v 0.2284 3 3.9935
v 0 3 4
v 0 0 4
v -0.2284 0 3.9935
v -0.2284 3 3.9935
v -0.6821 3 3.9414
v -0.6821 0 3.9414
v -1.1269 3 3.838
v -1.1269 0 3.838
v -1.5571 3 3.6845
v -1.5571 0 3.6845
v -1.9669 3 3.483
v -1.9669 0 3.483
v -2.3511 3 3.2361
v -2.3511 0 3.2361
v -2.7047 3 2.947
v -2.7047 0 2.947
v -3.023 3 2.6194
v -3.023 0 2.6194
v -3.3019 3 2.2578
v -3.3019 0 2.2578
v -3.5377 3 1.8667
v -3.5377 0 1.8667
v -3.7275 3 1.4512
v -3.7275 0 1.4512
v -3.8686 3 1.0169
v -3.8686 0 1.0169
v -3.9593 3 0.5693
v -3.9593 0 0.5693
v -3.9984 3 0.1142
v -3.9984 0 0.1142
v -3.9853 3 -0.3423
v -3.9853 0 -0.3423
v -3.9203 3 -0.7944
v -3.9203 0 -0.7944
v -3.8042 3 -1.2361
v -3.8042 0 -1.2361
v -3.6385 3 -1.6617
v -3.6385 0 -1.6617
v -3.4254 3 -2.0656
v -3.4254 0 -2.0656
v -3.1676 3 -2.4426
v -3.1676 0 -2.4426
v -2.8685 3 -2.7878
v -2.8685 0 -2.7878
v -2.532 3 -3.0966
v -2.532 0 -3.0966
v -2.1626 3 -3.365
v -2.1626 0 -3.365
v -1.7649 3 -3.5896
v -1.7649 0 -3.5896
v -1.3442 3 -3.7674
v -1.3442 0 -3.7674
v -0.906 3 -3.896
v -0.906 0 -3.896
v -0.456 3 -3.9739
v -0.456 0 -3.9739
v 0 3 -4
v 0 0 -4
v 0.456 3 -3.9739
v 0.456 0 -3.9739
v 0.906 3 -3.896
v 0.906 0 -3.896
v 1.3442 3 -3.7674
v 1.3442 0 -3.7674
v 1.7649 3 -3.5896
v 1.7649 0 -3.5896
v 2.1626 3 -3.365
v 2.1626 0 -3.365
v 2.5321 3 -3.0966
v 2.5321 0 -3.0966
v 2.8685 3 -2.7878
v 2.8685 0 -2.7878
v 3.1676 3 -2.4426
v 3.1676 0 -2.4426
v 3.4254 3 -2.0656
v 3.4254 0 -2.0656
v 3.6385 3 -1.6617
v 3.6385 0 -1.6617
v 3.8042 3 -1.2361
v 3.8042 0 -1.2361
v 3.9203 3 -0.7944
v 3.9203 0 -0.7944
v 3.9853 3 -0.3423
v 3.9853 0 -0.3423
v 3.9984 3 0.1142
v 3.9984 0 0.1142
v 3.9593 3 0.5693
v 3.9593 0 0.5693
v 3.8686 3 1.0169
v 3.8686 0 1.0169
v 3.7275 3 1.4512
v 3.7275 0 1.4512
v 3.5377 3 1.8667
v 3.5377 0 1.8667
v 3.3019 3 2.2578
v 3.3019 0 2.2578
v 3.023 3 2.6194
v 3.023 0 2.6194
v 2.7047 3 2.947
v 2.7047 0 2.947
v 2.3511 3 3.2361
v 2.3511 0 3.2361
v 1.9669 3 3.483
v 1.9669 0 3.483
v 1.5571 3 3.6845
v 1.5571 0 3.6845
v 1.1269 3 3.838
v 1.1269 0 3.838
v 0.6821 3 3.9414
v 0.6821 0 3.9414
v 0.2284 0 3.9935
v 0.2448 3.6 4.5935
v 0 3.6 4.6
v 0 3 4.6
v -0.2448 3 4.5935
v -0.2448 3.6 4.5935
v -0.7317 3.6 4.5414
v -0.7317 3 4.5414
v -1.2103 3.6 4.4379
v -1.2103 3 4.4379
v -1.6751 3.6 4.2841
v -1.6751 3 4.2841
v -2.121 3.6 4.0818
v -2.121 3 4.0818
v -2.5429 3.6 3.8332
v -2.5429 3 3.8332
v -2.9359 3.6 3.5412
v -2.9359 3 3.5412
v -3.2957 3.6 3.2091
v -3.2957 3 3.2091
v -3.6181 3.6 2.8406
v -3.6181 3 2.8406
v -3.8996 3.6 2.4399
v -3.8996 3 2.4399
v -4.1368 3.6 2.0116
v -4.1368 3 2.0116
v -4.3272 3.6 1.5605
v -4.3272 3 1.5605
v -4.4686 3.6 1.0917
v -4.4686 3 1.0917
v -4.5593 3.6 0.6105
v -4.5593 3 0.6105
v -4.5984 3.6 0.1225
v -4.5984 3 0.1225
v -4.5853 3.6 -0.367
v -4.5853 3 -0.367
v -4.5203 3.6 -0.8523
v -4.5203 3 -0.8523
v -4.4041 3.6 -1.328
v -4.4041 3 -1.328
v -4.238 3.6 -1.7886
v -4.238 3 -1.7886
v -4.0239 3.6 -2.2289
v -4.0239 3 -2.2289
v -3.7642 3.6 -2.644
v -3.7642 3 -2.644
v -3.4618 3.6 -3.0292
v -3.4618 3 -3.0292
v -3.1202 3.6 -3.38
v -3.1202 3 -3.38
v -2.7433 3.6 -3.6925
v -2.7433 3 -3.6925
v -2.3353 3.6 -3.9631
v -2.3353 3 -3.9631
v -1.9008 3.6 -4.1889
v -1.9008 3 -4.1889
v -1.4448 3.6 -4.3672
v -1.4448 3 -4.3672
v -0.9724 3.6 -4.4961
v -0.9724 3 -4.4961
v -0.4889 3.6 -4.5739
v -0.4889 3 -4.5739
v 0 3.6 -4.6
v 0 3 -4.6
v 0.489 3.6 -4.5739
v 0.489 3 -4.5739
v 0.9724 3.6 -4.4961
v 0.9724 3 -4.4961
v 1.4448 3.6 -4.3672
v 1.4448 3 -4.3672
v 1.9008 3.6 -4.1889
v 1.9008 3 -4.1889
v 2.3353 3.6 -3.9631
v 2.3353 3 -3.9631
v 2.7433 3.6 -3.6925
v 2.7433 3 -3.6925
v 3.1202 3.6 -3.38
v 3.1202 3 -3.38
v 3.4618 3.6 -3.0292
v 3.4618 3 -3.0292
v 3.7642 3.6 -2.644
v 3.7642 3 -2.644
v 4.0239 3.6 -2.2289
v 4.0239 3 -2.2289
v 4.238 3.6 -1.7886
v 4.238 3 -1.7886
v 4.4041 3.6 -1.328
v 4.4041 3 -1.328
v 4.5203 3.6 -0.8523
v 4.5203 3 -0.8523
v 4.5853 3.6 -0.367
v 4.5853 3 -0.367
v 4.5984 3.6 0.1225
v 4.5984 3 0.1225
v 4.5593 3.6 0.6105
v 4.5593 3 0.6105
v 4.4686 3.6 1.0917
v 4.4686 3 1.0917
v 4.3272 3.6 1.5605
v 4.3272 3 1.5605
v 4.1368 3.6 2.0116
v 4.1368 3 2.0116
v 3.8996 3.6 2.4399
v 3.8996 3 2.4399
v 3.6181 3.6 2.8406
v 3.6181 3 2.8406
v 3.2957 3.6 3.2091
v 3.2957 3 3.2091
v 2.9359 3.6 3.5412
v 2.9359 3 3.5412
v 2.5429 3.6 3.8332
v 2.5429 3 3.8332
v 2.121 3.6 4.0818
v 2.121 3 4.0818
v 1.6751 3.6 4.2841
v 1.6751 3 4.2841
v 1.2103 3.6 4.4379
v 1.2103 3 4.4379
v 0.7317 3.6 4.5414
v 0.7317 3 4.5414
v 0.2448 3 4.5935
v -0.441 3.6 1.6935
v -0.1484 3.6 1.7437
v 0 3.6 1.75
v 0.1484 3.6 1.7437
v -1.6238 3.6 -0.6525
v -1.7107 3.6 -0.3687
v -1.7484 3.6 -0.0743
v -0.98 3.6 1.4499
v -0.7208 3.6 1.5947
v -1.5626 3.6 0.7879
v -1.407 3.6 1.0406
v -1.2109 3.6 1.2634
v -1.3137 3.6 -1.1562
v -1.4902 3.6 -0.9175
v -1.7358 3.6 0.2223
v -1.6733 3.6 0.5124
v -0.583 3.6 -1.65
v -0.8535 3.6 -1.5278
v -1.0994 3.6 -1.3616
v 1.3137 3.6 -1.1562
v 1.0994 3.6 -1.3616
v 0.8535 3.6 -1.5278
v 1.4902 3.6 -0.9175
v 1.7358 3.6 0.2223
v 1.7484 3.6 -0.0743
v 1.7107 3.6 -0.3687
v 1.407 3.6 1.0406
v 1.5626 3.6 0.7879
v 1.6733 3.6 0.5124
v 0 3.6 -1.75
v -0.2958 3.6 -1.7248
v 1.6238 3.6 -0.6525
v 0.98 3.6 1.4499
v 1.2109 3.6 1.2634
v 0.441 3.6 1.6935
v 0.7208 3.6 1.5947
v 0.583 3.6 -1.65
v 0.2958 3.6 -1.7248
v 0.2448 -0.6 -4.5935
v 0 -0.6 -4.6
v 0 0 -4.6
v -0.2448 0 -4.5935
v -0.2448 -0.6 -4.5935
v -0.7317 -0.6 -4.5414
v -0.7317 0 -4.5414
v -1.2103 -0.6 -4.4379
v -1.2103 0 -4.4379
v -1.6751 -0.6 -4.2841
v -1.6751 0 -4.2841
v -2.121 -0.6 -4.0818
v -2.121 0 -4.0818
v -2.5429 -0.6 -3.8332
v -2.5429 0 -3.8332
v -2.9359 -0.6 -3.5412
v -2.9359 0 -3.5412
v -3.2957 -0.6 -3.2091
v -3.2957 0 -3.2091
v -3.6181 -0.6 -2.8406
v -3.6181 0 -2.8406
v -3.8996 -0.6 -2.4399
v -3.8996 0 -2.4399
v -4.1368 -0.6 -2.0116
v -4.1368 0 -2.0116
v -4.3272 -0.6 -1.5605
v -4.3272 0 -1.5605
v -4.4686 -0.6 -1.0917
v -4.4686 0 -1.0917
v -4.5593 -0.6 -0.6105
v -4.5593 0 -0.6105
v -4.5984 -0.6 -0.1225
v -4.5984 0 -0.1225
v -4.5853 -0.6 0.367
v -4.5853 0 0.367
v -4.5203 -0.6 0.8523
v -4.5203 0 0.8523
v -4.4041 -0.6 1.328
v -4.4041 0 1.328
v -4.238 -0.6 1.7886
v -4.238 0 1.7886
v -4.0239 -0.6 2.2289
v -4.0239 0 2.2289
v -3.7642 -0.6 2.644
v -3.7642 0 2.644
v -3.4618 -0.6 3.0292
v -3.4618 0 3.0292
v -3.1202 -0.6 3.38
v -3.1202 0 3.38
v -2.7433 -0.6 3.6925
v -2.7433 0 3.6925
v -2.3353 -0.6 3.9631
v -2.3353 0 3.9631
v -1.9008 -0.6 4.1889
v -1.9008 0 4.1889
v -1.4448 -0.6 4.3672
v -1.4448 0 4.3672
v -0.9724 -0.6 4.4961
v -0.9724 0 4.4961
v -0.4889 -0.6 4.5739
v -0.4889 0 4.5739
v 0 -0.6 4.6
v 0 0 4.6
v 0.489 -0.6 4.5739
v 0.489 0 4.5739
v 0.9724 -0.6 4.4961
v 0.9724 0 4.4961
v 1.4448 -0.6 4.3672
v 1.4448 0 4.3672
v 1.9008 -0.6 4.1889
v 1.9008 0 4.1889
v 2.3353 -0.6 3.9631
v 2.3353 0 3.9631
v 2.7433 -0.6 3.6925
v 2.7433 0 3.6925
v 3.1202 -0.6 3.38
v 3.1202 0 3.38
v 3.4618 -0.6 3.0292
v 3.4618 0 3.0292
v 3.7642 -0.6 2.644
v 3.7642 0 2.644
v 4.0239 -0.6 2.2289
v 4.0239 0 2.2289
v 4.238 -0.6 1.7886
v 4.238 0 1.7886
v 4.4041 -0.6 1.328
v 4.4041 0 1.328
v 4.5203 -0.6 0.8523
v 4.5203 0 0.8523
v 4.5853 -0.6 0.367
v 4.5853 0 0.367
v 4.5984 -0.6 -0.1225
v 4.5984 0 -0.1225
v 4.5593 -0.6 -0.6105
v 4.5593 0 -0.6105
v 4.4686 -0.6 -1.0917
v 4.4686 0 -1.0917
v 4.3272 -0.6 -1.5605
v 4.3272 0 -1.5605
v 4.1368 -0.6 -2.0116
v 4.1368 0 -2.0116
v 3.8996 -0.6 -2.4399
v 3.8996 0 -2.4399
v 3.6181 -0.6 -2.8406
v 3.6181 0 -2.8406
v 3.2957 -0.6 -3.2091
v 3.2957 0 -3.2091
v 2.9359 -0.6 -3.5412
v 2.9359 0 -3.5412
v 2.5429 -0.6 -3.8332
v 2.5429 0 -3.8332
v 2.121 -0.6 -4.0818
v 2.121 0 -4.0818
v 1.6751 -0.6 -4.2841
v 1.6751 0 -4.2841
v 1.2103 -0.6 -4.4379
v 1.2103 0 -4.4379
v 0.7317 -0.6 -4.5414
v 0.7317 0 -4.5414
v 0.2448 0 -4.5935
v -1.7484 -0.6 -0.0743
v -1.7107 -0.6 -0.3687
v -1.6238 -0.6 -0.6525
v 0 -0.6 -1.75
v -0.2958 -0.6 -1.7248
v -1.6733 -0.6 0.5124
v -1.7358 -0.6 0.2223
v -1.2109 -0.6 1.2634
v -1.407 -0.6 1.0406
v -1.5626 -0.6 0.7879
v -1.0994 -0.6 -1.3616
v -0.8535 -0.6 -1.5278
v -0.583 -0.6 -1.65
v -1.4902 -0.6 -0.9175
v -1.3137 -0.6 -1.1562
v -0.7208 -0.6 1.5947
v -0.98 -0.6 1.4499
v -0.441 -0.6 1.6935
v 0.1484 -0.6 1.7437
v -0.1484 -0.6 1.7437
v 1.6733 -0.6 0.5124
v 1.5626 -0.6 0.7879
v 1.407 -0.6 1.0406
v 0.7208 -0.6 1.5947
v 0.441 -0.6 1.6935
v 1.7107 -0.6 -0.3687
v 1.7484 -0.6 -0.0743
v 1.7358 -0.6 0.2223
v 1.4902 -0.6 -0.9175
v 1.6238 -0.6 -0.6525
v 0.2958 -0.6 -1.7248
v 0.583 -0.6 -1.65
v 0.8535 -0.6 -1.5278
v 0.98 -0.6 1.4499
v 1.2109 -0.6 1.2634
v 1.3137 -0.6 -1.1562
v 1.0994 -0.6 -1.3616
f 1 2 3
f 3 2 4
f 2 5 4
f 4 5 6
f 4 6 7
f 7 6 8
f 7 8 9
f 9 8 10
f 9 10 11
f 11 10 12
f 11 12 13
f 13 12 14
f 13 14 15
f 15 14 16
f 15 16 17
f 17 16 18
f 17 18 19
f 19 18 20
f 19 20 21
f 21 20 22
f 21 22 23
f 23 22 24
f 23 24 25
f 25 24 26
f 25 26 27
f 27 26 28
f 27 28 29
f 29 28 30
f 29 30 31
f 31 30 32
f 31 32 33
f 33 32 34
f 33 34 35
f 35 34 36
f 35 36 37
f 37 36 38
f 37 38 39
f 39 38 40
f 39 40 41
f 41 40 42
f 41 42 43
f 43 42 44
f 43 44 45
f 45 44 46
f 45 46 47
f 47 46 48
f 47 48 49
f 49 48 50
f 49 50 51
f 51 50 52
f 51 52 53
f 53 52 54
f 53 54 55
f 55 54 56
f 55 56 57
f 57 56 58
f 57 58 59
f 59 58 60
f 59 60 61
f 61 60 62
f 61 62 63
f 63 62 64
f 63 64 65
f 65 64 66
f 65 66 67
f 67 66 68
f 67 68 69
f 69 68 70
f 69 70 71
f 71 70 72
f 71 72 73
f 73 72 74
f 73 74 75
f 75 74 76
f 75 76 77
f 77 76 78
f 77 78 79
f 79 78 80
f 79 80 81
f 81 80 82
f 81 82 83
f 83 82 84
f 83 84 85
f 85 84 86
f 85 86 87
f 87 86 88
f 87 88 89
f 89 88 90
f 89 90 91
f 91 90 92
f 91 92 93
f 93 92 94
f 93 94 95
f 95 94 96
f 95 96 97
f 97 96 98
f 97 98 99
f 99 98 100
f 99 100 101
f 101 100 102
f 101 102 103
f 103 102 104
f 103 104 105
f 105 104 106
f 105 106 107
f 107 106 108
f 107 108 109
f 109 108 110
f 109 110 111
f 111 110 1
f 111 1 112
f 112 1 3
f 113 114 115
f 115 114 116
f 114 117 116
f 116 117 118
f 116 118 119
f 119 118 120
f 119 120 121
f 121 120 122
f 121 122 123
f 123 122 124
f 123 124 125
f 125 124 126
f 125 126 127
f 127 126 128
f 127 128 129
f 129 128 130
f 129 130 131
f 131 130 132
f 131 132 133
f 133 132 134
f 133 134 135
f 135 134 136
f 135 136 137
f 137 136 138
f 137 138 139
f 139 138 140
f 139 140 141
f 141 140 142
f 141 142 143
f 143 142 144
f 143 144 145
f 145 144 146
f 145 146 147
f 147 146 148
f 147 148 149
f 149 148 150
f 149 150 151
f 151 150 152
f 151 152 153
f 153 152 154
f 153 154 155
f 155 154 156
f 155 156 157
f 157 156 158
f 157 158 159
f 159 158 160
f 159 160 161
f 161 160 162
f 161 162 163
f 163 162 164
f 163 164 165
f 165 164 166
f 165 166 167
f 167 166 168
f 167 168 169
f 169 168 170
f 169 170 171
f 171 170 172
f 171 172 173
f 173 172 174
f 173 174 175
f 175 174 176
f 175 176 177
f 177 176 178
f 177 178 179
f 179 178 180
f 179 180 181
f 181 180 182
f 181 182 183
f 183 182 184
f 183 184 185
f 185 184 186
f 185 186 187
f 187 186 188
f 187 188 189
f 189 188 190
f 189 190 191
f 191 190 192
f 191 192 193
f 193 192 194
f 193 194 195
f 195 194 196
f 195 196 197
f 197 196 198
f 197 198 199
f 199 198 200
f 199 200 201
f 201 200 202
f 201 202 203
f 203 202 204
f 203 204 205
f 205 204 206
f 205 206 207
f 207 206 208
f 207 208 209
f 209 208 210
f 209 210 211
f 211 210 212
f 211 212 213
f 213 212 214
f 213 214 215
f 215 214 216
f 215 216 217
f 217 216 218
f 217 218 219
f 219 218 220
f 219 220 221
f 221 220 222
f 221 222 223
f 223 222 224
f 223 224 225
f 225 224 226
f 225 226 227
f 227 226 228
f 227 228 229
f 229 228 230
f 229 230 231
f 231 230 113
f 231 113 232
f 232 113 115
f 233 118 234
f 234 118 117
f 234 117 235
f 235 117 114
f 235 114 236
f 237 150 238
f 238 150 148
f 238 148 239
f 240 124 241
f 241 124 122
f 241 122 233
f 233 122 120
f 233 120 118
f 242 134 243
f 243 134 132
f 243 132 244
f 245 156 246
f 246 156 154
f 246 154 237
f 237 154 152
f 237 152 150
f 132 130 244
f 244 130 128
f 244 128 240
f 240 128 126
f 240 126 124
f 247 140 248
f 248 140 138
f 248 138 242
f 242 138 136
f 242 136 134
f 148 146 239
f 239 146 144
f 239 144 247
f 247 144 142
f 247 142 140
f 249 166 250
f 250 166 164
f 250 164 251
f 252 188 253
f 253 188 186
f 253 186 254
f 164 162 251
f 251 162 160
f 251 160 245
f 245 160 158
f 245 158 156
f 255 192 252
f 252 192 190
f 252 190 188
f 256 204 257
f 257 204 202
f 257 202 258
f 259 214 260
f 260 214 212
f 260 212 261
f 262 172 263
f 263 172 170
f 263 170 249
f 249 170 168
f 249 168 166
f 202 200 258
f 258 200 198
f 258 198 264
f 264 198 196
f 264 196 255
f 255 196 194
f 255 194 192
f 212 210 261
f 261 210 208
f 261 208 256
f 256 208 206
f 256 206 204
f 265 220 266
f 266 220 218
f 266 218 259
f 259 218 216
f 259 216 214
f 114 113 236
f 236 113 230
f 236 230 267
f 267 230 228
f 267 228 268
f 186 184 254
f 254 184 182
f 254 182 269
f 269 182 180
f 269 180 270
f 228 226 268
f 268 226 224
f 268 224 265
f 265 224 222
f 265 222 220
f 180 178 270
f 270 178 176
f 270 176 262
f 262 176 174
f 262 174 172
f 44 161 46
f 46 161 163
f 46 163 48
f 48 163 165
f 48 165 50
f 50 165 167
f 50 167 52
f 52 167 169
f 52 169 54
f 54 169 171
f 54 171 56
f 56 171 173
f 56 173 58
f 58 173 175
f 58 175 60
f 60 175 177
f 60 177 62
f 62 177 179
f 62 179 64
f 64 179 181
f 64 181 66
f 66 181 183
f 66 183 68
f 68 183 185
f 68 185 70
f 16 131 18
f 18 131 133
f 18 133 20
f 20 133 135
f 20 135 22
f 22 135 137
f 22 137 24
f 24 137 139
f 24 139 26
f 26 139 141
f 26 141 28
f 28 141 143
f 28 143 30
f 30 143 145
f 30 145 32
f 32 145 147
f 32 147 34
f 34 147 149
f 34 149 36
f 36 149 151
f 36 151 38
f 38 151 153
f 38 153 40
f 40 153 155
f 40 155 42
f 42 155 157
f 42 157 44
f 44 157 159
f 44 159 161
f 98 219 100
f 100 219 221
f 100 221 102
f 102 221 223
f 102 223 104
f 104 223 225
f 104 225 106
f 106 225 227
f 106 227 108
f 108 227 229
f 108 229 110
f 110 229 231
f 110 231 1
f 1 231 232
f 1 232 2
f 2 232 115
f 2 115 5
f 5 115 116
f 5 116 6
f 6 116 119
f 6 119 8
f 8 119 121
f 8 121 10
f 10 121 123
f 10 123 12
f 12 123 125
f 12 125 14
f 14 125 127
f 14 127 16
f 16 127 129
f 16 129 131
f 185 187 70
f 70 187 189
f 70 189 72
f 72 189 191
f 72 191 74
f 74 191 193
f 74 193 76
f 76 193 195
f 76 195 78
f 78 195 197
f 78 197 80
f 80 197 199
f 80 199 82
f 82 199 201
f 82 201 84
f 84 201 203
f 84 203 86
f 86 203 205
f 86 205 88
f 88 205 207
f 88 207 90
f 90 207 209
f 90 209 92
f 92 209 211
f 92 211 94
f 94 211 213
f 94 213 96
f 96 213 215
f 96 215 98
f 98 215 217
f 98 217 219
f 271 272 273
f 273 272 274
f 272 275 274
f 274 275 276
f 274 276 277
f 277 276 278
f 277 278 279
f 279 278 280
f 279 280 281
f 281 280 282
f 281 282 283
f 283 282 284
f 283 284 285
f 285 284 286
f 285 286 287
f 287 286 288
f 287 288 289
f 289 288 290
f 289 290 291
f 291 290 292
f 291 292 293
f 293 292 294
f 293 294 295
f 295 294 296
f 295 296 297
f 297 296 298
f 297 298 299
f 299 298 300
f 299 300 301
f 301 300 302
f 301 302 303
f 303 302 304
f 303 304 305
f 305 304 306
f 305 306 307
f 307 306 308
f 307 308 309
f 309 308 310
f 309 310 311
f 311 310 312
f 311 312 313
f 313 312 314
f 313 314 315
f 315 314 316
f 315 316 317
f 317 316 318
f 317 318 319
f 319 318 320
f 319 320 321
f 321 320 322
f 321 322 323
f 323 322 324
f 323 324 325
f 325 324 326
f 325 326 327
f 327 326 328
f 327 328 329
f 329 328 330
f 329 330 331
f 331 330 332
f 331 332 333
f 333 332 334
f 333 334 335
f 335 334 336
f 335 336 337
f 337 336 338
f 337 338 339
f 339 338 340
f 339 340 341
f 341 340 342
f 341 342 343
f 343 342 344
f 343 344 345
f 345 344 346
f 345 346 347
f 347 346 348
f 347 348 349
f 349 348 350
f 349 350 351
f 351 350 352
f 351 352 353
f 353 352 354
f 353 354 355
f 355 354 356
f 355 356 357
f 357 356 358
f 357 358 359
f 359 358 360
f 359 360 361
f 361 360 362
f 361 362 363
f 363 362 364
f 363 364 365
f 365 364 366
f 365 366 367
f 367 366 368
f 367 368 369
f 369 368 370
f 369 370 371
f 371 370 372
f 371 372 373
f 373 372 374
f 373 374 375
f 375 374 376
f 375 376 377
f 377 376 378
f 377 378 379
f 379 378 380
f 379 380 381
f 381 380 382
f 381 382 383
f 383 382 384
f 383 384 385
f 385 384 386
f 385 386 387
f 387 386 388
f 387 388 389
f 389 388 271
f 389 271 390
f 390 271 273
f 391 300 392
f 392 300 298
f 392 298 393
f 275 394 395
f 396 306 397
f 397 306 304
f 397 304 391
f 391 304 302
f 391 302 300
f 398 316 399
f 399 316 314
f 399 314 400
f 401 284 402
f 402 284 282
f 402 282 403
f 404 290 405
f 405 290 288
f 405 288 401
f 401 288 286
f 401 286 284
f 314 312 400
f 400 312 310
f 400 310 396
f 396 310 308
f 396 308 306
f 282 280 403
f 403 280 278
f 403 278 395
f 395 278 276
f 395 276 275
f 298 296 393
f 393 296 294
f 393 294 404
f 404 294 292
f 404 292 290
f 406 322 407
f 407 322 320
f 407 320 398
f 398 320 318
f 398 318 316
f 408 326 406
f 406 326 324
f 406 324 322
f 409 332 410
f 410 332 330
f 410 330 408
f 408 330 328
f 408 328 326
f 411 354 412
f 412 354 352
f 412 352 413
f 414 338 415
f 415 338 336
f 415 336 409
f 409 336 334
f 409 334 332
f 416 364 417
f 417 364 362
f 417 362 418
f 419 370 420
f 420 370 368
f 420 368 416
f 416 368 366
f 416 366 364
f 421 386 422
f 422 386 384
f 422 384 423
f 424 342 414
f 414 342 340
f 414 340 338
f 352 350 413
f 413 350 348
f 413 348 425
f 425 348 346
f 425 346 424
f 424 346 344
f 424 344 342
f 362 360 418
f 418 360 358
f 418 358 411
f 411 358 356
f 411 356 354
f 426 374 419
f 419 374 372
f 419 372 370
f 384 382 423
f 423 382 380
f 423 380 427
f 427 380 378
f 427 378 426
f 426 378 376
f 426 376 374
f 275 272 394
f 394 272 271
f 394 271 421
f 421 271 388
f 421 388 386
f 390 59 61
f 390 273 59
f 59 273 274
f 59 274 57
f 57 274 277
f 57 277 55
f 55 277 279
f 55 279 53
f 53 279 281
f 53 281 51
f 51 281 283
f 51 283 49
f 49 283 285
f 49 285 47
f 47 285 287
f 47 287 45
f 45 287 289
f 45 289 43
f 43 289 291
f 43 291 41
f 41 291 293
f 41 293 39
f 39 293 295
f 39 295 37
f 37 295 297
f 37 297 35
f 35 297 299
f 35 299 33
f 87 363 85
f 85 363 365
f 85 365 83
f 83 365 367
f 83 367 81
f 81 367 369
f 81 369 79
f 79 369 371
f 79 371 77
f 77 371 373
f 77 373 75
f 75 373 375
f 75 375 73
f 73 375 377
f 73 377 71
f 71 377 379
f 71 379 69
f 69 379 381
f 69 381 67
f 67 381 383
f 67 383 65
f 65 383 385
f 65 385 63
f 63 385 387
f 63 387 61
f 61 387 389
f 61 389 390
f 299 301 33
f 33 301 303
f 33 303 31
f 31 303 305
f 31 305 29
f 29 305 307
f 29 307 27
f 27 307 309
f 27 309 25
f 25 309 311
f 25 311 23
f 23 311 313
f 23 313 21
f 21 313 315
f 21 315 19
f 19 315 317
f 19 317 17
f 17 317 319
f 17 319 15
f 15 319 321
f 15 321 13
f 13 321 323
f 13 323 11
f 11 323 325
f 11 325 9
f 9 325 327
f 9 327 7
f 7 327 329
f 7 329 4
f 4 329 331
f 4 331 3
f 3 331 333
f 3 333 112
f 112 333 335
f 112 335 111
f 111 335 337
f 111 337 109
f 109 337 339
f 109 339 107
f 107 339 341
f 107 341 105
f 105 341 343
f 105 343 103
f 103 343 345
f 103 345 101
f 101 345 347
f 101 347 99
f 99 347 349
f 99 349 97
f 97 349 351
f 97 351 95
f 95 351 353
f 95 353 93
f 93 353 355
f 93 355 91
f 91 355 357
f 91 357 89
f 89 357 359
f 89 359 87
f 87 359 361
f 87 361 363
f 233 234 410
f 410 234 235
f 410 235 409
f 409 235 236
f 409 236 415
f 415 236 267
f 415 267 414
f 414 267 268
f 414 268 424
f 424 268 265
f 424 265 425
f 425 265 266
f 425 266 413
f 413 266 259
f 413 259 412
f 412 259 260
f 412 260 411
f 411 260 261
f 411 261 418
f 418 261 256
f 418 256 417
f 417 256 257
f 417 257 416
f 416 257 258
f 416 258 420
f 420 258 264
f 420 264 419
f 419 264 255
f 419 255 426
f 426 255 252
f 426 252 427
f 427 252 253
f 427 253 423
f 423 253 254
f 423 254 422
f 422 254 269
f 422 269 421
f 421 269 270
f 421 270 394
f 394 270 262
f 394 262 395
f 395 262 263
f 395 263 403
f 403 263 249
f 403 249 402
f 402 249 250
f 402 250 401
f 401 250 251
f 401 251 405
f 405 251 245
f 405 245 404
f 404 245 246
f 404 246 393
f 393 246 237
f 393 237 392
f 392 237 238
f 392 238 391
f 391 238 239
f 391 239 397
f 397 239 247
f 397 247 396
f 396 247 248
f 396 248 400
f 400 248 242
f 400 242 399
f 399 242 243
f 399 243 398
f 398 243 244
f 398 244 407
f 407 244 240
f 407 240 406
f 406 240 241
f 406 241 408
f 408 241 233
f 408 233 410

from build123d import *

# Parameters (mm, degrees)
SKETCH_1_R          = 4
EXTRUDE_1_DEPTH     = 3
SKETCH_3_R          = 4.6
EXTRUDE_2_DEPTH     = 0.6
EXTRUDE_START       = 0.6
SKETCH_4_R          = 4.6
EXTRUDE_3_DEPTH     = 0.6
SKETCH_5_R          = 1.75
CUT_EXTRUDE_1_DEPTH = 11


with BuildPart() as part:
    # 草图1 → 凸台-拉伸1 (new body)
    with BuildSketch(Plane(origin=(0, 0, 0), x_dir=(1, 0, 0), z_dir=(0, 1, 0))):
        with Locations(Location((0, 0, 0), (0, 0, 270))):
            Circle(SKETCH_1_R)
    extrude(amount=EXTRUDE_1_DEPTH)

    # 草图3 → 凸台-拉伸2 (add)
    with BuildSketch(Plane(origin=(0, 3, 0), x_dir=(1, 0, 0), z_dir=(0, 1, 0))):
        with Locations(Location((0, 0, 0), (0, 0, 270))):
            Circle(SKETCH_3_R)
    extrude(amount=EXTRUDE_2_DEPTH)

    # 草图4 → 凸台-拉伸3 (add)
    with BuildSketch(Plane.XZ.offset(EXTRUDE_START)):
        with Locations(Location((0, 0, 0), (0, 0, 90))):
            Circle(SKETCH_4_R)
    extrude(amount=-EXTRUDE_3_DEPTH)

    # 草图5 → 切除-拉伸1 (cut)
    with BuildSketch(Plane.XZ.offset(0.6)):
        with Locations(Location((0, 0, 0), (0, 0, 270))):
            Circle(SKETCH_5_R)
    extrude(amount=-CUT_EXTRUDE_1_DEPTH, mode=Mode.SUBTRACT)


solid = part.part
